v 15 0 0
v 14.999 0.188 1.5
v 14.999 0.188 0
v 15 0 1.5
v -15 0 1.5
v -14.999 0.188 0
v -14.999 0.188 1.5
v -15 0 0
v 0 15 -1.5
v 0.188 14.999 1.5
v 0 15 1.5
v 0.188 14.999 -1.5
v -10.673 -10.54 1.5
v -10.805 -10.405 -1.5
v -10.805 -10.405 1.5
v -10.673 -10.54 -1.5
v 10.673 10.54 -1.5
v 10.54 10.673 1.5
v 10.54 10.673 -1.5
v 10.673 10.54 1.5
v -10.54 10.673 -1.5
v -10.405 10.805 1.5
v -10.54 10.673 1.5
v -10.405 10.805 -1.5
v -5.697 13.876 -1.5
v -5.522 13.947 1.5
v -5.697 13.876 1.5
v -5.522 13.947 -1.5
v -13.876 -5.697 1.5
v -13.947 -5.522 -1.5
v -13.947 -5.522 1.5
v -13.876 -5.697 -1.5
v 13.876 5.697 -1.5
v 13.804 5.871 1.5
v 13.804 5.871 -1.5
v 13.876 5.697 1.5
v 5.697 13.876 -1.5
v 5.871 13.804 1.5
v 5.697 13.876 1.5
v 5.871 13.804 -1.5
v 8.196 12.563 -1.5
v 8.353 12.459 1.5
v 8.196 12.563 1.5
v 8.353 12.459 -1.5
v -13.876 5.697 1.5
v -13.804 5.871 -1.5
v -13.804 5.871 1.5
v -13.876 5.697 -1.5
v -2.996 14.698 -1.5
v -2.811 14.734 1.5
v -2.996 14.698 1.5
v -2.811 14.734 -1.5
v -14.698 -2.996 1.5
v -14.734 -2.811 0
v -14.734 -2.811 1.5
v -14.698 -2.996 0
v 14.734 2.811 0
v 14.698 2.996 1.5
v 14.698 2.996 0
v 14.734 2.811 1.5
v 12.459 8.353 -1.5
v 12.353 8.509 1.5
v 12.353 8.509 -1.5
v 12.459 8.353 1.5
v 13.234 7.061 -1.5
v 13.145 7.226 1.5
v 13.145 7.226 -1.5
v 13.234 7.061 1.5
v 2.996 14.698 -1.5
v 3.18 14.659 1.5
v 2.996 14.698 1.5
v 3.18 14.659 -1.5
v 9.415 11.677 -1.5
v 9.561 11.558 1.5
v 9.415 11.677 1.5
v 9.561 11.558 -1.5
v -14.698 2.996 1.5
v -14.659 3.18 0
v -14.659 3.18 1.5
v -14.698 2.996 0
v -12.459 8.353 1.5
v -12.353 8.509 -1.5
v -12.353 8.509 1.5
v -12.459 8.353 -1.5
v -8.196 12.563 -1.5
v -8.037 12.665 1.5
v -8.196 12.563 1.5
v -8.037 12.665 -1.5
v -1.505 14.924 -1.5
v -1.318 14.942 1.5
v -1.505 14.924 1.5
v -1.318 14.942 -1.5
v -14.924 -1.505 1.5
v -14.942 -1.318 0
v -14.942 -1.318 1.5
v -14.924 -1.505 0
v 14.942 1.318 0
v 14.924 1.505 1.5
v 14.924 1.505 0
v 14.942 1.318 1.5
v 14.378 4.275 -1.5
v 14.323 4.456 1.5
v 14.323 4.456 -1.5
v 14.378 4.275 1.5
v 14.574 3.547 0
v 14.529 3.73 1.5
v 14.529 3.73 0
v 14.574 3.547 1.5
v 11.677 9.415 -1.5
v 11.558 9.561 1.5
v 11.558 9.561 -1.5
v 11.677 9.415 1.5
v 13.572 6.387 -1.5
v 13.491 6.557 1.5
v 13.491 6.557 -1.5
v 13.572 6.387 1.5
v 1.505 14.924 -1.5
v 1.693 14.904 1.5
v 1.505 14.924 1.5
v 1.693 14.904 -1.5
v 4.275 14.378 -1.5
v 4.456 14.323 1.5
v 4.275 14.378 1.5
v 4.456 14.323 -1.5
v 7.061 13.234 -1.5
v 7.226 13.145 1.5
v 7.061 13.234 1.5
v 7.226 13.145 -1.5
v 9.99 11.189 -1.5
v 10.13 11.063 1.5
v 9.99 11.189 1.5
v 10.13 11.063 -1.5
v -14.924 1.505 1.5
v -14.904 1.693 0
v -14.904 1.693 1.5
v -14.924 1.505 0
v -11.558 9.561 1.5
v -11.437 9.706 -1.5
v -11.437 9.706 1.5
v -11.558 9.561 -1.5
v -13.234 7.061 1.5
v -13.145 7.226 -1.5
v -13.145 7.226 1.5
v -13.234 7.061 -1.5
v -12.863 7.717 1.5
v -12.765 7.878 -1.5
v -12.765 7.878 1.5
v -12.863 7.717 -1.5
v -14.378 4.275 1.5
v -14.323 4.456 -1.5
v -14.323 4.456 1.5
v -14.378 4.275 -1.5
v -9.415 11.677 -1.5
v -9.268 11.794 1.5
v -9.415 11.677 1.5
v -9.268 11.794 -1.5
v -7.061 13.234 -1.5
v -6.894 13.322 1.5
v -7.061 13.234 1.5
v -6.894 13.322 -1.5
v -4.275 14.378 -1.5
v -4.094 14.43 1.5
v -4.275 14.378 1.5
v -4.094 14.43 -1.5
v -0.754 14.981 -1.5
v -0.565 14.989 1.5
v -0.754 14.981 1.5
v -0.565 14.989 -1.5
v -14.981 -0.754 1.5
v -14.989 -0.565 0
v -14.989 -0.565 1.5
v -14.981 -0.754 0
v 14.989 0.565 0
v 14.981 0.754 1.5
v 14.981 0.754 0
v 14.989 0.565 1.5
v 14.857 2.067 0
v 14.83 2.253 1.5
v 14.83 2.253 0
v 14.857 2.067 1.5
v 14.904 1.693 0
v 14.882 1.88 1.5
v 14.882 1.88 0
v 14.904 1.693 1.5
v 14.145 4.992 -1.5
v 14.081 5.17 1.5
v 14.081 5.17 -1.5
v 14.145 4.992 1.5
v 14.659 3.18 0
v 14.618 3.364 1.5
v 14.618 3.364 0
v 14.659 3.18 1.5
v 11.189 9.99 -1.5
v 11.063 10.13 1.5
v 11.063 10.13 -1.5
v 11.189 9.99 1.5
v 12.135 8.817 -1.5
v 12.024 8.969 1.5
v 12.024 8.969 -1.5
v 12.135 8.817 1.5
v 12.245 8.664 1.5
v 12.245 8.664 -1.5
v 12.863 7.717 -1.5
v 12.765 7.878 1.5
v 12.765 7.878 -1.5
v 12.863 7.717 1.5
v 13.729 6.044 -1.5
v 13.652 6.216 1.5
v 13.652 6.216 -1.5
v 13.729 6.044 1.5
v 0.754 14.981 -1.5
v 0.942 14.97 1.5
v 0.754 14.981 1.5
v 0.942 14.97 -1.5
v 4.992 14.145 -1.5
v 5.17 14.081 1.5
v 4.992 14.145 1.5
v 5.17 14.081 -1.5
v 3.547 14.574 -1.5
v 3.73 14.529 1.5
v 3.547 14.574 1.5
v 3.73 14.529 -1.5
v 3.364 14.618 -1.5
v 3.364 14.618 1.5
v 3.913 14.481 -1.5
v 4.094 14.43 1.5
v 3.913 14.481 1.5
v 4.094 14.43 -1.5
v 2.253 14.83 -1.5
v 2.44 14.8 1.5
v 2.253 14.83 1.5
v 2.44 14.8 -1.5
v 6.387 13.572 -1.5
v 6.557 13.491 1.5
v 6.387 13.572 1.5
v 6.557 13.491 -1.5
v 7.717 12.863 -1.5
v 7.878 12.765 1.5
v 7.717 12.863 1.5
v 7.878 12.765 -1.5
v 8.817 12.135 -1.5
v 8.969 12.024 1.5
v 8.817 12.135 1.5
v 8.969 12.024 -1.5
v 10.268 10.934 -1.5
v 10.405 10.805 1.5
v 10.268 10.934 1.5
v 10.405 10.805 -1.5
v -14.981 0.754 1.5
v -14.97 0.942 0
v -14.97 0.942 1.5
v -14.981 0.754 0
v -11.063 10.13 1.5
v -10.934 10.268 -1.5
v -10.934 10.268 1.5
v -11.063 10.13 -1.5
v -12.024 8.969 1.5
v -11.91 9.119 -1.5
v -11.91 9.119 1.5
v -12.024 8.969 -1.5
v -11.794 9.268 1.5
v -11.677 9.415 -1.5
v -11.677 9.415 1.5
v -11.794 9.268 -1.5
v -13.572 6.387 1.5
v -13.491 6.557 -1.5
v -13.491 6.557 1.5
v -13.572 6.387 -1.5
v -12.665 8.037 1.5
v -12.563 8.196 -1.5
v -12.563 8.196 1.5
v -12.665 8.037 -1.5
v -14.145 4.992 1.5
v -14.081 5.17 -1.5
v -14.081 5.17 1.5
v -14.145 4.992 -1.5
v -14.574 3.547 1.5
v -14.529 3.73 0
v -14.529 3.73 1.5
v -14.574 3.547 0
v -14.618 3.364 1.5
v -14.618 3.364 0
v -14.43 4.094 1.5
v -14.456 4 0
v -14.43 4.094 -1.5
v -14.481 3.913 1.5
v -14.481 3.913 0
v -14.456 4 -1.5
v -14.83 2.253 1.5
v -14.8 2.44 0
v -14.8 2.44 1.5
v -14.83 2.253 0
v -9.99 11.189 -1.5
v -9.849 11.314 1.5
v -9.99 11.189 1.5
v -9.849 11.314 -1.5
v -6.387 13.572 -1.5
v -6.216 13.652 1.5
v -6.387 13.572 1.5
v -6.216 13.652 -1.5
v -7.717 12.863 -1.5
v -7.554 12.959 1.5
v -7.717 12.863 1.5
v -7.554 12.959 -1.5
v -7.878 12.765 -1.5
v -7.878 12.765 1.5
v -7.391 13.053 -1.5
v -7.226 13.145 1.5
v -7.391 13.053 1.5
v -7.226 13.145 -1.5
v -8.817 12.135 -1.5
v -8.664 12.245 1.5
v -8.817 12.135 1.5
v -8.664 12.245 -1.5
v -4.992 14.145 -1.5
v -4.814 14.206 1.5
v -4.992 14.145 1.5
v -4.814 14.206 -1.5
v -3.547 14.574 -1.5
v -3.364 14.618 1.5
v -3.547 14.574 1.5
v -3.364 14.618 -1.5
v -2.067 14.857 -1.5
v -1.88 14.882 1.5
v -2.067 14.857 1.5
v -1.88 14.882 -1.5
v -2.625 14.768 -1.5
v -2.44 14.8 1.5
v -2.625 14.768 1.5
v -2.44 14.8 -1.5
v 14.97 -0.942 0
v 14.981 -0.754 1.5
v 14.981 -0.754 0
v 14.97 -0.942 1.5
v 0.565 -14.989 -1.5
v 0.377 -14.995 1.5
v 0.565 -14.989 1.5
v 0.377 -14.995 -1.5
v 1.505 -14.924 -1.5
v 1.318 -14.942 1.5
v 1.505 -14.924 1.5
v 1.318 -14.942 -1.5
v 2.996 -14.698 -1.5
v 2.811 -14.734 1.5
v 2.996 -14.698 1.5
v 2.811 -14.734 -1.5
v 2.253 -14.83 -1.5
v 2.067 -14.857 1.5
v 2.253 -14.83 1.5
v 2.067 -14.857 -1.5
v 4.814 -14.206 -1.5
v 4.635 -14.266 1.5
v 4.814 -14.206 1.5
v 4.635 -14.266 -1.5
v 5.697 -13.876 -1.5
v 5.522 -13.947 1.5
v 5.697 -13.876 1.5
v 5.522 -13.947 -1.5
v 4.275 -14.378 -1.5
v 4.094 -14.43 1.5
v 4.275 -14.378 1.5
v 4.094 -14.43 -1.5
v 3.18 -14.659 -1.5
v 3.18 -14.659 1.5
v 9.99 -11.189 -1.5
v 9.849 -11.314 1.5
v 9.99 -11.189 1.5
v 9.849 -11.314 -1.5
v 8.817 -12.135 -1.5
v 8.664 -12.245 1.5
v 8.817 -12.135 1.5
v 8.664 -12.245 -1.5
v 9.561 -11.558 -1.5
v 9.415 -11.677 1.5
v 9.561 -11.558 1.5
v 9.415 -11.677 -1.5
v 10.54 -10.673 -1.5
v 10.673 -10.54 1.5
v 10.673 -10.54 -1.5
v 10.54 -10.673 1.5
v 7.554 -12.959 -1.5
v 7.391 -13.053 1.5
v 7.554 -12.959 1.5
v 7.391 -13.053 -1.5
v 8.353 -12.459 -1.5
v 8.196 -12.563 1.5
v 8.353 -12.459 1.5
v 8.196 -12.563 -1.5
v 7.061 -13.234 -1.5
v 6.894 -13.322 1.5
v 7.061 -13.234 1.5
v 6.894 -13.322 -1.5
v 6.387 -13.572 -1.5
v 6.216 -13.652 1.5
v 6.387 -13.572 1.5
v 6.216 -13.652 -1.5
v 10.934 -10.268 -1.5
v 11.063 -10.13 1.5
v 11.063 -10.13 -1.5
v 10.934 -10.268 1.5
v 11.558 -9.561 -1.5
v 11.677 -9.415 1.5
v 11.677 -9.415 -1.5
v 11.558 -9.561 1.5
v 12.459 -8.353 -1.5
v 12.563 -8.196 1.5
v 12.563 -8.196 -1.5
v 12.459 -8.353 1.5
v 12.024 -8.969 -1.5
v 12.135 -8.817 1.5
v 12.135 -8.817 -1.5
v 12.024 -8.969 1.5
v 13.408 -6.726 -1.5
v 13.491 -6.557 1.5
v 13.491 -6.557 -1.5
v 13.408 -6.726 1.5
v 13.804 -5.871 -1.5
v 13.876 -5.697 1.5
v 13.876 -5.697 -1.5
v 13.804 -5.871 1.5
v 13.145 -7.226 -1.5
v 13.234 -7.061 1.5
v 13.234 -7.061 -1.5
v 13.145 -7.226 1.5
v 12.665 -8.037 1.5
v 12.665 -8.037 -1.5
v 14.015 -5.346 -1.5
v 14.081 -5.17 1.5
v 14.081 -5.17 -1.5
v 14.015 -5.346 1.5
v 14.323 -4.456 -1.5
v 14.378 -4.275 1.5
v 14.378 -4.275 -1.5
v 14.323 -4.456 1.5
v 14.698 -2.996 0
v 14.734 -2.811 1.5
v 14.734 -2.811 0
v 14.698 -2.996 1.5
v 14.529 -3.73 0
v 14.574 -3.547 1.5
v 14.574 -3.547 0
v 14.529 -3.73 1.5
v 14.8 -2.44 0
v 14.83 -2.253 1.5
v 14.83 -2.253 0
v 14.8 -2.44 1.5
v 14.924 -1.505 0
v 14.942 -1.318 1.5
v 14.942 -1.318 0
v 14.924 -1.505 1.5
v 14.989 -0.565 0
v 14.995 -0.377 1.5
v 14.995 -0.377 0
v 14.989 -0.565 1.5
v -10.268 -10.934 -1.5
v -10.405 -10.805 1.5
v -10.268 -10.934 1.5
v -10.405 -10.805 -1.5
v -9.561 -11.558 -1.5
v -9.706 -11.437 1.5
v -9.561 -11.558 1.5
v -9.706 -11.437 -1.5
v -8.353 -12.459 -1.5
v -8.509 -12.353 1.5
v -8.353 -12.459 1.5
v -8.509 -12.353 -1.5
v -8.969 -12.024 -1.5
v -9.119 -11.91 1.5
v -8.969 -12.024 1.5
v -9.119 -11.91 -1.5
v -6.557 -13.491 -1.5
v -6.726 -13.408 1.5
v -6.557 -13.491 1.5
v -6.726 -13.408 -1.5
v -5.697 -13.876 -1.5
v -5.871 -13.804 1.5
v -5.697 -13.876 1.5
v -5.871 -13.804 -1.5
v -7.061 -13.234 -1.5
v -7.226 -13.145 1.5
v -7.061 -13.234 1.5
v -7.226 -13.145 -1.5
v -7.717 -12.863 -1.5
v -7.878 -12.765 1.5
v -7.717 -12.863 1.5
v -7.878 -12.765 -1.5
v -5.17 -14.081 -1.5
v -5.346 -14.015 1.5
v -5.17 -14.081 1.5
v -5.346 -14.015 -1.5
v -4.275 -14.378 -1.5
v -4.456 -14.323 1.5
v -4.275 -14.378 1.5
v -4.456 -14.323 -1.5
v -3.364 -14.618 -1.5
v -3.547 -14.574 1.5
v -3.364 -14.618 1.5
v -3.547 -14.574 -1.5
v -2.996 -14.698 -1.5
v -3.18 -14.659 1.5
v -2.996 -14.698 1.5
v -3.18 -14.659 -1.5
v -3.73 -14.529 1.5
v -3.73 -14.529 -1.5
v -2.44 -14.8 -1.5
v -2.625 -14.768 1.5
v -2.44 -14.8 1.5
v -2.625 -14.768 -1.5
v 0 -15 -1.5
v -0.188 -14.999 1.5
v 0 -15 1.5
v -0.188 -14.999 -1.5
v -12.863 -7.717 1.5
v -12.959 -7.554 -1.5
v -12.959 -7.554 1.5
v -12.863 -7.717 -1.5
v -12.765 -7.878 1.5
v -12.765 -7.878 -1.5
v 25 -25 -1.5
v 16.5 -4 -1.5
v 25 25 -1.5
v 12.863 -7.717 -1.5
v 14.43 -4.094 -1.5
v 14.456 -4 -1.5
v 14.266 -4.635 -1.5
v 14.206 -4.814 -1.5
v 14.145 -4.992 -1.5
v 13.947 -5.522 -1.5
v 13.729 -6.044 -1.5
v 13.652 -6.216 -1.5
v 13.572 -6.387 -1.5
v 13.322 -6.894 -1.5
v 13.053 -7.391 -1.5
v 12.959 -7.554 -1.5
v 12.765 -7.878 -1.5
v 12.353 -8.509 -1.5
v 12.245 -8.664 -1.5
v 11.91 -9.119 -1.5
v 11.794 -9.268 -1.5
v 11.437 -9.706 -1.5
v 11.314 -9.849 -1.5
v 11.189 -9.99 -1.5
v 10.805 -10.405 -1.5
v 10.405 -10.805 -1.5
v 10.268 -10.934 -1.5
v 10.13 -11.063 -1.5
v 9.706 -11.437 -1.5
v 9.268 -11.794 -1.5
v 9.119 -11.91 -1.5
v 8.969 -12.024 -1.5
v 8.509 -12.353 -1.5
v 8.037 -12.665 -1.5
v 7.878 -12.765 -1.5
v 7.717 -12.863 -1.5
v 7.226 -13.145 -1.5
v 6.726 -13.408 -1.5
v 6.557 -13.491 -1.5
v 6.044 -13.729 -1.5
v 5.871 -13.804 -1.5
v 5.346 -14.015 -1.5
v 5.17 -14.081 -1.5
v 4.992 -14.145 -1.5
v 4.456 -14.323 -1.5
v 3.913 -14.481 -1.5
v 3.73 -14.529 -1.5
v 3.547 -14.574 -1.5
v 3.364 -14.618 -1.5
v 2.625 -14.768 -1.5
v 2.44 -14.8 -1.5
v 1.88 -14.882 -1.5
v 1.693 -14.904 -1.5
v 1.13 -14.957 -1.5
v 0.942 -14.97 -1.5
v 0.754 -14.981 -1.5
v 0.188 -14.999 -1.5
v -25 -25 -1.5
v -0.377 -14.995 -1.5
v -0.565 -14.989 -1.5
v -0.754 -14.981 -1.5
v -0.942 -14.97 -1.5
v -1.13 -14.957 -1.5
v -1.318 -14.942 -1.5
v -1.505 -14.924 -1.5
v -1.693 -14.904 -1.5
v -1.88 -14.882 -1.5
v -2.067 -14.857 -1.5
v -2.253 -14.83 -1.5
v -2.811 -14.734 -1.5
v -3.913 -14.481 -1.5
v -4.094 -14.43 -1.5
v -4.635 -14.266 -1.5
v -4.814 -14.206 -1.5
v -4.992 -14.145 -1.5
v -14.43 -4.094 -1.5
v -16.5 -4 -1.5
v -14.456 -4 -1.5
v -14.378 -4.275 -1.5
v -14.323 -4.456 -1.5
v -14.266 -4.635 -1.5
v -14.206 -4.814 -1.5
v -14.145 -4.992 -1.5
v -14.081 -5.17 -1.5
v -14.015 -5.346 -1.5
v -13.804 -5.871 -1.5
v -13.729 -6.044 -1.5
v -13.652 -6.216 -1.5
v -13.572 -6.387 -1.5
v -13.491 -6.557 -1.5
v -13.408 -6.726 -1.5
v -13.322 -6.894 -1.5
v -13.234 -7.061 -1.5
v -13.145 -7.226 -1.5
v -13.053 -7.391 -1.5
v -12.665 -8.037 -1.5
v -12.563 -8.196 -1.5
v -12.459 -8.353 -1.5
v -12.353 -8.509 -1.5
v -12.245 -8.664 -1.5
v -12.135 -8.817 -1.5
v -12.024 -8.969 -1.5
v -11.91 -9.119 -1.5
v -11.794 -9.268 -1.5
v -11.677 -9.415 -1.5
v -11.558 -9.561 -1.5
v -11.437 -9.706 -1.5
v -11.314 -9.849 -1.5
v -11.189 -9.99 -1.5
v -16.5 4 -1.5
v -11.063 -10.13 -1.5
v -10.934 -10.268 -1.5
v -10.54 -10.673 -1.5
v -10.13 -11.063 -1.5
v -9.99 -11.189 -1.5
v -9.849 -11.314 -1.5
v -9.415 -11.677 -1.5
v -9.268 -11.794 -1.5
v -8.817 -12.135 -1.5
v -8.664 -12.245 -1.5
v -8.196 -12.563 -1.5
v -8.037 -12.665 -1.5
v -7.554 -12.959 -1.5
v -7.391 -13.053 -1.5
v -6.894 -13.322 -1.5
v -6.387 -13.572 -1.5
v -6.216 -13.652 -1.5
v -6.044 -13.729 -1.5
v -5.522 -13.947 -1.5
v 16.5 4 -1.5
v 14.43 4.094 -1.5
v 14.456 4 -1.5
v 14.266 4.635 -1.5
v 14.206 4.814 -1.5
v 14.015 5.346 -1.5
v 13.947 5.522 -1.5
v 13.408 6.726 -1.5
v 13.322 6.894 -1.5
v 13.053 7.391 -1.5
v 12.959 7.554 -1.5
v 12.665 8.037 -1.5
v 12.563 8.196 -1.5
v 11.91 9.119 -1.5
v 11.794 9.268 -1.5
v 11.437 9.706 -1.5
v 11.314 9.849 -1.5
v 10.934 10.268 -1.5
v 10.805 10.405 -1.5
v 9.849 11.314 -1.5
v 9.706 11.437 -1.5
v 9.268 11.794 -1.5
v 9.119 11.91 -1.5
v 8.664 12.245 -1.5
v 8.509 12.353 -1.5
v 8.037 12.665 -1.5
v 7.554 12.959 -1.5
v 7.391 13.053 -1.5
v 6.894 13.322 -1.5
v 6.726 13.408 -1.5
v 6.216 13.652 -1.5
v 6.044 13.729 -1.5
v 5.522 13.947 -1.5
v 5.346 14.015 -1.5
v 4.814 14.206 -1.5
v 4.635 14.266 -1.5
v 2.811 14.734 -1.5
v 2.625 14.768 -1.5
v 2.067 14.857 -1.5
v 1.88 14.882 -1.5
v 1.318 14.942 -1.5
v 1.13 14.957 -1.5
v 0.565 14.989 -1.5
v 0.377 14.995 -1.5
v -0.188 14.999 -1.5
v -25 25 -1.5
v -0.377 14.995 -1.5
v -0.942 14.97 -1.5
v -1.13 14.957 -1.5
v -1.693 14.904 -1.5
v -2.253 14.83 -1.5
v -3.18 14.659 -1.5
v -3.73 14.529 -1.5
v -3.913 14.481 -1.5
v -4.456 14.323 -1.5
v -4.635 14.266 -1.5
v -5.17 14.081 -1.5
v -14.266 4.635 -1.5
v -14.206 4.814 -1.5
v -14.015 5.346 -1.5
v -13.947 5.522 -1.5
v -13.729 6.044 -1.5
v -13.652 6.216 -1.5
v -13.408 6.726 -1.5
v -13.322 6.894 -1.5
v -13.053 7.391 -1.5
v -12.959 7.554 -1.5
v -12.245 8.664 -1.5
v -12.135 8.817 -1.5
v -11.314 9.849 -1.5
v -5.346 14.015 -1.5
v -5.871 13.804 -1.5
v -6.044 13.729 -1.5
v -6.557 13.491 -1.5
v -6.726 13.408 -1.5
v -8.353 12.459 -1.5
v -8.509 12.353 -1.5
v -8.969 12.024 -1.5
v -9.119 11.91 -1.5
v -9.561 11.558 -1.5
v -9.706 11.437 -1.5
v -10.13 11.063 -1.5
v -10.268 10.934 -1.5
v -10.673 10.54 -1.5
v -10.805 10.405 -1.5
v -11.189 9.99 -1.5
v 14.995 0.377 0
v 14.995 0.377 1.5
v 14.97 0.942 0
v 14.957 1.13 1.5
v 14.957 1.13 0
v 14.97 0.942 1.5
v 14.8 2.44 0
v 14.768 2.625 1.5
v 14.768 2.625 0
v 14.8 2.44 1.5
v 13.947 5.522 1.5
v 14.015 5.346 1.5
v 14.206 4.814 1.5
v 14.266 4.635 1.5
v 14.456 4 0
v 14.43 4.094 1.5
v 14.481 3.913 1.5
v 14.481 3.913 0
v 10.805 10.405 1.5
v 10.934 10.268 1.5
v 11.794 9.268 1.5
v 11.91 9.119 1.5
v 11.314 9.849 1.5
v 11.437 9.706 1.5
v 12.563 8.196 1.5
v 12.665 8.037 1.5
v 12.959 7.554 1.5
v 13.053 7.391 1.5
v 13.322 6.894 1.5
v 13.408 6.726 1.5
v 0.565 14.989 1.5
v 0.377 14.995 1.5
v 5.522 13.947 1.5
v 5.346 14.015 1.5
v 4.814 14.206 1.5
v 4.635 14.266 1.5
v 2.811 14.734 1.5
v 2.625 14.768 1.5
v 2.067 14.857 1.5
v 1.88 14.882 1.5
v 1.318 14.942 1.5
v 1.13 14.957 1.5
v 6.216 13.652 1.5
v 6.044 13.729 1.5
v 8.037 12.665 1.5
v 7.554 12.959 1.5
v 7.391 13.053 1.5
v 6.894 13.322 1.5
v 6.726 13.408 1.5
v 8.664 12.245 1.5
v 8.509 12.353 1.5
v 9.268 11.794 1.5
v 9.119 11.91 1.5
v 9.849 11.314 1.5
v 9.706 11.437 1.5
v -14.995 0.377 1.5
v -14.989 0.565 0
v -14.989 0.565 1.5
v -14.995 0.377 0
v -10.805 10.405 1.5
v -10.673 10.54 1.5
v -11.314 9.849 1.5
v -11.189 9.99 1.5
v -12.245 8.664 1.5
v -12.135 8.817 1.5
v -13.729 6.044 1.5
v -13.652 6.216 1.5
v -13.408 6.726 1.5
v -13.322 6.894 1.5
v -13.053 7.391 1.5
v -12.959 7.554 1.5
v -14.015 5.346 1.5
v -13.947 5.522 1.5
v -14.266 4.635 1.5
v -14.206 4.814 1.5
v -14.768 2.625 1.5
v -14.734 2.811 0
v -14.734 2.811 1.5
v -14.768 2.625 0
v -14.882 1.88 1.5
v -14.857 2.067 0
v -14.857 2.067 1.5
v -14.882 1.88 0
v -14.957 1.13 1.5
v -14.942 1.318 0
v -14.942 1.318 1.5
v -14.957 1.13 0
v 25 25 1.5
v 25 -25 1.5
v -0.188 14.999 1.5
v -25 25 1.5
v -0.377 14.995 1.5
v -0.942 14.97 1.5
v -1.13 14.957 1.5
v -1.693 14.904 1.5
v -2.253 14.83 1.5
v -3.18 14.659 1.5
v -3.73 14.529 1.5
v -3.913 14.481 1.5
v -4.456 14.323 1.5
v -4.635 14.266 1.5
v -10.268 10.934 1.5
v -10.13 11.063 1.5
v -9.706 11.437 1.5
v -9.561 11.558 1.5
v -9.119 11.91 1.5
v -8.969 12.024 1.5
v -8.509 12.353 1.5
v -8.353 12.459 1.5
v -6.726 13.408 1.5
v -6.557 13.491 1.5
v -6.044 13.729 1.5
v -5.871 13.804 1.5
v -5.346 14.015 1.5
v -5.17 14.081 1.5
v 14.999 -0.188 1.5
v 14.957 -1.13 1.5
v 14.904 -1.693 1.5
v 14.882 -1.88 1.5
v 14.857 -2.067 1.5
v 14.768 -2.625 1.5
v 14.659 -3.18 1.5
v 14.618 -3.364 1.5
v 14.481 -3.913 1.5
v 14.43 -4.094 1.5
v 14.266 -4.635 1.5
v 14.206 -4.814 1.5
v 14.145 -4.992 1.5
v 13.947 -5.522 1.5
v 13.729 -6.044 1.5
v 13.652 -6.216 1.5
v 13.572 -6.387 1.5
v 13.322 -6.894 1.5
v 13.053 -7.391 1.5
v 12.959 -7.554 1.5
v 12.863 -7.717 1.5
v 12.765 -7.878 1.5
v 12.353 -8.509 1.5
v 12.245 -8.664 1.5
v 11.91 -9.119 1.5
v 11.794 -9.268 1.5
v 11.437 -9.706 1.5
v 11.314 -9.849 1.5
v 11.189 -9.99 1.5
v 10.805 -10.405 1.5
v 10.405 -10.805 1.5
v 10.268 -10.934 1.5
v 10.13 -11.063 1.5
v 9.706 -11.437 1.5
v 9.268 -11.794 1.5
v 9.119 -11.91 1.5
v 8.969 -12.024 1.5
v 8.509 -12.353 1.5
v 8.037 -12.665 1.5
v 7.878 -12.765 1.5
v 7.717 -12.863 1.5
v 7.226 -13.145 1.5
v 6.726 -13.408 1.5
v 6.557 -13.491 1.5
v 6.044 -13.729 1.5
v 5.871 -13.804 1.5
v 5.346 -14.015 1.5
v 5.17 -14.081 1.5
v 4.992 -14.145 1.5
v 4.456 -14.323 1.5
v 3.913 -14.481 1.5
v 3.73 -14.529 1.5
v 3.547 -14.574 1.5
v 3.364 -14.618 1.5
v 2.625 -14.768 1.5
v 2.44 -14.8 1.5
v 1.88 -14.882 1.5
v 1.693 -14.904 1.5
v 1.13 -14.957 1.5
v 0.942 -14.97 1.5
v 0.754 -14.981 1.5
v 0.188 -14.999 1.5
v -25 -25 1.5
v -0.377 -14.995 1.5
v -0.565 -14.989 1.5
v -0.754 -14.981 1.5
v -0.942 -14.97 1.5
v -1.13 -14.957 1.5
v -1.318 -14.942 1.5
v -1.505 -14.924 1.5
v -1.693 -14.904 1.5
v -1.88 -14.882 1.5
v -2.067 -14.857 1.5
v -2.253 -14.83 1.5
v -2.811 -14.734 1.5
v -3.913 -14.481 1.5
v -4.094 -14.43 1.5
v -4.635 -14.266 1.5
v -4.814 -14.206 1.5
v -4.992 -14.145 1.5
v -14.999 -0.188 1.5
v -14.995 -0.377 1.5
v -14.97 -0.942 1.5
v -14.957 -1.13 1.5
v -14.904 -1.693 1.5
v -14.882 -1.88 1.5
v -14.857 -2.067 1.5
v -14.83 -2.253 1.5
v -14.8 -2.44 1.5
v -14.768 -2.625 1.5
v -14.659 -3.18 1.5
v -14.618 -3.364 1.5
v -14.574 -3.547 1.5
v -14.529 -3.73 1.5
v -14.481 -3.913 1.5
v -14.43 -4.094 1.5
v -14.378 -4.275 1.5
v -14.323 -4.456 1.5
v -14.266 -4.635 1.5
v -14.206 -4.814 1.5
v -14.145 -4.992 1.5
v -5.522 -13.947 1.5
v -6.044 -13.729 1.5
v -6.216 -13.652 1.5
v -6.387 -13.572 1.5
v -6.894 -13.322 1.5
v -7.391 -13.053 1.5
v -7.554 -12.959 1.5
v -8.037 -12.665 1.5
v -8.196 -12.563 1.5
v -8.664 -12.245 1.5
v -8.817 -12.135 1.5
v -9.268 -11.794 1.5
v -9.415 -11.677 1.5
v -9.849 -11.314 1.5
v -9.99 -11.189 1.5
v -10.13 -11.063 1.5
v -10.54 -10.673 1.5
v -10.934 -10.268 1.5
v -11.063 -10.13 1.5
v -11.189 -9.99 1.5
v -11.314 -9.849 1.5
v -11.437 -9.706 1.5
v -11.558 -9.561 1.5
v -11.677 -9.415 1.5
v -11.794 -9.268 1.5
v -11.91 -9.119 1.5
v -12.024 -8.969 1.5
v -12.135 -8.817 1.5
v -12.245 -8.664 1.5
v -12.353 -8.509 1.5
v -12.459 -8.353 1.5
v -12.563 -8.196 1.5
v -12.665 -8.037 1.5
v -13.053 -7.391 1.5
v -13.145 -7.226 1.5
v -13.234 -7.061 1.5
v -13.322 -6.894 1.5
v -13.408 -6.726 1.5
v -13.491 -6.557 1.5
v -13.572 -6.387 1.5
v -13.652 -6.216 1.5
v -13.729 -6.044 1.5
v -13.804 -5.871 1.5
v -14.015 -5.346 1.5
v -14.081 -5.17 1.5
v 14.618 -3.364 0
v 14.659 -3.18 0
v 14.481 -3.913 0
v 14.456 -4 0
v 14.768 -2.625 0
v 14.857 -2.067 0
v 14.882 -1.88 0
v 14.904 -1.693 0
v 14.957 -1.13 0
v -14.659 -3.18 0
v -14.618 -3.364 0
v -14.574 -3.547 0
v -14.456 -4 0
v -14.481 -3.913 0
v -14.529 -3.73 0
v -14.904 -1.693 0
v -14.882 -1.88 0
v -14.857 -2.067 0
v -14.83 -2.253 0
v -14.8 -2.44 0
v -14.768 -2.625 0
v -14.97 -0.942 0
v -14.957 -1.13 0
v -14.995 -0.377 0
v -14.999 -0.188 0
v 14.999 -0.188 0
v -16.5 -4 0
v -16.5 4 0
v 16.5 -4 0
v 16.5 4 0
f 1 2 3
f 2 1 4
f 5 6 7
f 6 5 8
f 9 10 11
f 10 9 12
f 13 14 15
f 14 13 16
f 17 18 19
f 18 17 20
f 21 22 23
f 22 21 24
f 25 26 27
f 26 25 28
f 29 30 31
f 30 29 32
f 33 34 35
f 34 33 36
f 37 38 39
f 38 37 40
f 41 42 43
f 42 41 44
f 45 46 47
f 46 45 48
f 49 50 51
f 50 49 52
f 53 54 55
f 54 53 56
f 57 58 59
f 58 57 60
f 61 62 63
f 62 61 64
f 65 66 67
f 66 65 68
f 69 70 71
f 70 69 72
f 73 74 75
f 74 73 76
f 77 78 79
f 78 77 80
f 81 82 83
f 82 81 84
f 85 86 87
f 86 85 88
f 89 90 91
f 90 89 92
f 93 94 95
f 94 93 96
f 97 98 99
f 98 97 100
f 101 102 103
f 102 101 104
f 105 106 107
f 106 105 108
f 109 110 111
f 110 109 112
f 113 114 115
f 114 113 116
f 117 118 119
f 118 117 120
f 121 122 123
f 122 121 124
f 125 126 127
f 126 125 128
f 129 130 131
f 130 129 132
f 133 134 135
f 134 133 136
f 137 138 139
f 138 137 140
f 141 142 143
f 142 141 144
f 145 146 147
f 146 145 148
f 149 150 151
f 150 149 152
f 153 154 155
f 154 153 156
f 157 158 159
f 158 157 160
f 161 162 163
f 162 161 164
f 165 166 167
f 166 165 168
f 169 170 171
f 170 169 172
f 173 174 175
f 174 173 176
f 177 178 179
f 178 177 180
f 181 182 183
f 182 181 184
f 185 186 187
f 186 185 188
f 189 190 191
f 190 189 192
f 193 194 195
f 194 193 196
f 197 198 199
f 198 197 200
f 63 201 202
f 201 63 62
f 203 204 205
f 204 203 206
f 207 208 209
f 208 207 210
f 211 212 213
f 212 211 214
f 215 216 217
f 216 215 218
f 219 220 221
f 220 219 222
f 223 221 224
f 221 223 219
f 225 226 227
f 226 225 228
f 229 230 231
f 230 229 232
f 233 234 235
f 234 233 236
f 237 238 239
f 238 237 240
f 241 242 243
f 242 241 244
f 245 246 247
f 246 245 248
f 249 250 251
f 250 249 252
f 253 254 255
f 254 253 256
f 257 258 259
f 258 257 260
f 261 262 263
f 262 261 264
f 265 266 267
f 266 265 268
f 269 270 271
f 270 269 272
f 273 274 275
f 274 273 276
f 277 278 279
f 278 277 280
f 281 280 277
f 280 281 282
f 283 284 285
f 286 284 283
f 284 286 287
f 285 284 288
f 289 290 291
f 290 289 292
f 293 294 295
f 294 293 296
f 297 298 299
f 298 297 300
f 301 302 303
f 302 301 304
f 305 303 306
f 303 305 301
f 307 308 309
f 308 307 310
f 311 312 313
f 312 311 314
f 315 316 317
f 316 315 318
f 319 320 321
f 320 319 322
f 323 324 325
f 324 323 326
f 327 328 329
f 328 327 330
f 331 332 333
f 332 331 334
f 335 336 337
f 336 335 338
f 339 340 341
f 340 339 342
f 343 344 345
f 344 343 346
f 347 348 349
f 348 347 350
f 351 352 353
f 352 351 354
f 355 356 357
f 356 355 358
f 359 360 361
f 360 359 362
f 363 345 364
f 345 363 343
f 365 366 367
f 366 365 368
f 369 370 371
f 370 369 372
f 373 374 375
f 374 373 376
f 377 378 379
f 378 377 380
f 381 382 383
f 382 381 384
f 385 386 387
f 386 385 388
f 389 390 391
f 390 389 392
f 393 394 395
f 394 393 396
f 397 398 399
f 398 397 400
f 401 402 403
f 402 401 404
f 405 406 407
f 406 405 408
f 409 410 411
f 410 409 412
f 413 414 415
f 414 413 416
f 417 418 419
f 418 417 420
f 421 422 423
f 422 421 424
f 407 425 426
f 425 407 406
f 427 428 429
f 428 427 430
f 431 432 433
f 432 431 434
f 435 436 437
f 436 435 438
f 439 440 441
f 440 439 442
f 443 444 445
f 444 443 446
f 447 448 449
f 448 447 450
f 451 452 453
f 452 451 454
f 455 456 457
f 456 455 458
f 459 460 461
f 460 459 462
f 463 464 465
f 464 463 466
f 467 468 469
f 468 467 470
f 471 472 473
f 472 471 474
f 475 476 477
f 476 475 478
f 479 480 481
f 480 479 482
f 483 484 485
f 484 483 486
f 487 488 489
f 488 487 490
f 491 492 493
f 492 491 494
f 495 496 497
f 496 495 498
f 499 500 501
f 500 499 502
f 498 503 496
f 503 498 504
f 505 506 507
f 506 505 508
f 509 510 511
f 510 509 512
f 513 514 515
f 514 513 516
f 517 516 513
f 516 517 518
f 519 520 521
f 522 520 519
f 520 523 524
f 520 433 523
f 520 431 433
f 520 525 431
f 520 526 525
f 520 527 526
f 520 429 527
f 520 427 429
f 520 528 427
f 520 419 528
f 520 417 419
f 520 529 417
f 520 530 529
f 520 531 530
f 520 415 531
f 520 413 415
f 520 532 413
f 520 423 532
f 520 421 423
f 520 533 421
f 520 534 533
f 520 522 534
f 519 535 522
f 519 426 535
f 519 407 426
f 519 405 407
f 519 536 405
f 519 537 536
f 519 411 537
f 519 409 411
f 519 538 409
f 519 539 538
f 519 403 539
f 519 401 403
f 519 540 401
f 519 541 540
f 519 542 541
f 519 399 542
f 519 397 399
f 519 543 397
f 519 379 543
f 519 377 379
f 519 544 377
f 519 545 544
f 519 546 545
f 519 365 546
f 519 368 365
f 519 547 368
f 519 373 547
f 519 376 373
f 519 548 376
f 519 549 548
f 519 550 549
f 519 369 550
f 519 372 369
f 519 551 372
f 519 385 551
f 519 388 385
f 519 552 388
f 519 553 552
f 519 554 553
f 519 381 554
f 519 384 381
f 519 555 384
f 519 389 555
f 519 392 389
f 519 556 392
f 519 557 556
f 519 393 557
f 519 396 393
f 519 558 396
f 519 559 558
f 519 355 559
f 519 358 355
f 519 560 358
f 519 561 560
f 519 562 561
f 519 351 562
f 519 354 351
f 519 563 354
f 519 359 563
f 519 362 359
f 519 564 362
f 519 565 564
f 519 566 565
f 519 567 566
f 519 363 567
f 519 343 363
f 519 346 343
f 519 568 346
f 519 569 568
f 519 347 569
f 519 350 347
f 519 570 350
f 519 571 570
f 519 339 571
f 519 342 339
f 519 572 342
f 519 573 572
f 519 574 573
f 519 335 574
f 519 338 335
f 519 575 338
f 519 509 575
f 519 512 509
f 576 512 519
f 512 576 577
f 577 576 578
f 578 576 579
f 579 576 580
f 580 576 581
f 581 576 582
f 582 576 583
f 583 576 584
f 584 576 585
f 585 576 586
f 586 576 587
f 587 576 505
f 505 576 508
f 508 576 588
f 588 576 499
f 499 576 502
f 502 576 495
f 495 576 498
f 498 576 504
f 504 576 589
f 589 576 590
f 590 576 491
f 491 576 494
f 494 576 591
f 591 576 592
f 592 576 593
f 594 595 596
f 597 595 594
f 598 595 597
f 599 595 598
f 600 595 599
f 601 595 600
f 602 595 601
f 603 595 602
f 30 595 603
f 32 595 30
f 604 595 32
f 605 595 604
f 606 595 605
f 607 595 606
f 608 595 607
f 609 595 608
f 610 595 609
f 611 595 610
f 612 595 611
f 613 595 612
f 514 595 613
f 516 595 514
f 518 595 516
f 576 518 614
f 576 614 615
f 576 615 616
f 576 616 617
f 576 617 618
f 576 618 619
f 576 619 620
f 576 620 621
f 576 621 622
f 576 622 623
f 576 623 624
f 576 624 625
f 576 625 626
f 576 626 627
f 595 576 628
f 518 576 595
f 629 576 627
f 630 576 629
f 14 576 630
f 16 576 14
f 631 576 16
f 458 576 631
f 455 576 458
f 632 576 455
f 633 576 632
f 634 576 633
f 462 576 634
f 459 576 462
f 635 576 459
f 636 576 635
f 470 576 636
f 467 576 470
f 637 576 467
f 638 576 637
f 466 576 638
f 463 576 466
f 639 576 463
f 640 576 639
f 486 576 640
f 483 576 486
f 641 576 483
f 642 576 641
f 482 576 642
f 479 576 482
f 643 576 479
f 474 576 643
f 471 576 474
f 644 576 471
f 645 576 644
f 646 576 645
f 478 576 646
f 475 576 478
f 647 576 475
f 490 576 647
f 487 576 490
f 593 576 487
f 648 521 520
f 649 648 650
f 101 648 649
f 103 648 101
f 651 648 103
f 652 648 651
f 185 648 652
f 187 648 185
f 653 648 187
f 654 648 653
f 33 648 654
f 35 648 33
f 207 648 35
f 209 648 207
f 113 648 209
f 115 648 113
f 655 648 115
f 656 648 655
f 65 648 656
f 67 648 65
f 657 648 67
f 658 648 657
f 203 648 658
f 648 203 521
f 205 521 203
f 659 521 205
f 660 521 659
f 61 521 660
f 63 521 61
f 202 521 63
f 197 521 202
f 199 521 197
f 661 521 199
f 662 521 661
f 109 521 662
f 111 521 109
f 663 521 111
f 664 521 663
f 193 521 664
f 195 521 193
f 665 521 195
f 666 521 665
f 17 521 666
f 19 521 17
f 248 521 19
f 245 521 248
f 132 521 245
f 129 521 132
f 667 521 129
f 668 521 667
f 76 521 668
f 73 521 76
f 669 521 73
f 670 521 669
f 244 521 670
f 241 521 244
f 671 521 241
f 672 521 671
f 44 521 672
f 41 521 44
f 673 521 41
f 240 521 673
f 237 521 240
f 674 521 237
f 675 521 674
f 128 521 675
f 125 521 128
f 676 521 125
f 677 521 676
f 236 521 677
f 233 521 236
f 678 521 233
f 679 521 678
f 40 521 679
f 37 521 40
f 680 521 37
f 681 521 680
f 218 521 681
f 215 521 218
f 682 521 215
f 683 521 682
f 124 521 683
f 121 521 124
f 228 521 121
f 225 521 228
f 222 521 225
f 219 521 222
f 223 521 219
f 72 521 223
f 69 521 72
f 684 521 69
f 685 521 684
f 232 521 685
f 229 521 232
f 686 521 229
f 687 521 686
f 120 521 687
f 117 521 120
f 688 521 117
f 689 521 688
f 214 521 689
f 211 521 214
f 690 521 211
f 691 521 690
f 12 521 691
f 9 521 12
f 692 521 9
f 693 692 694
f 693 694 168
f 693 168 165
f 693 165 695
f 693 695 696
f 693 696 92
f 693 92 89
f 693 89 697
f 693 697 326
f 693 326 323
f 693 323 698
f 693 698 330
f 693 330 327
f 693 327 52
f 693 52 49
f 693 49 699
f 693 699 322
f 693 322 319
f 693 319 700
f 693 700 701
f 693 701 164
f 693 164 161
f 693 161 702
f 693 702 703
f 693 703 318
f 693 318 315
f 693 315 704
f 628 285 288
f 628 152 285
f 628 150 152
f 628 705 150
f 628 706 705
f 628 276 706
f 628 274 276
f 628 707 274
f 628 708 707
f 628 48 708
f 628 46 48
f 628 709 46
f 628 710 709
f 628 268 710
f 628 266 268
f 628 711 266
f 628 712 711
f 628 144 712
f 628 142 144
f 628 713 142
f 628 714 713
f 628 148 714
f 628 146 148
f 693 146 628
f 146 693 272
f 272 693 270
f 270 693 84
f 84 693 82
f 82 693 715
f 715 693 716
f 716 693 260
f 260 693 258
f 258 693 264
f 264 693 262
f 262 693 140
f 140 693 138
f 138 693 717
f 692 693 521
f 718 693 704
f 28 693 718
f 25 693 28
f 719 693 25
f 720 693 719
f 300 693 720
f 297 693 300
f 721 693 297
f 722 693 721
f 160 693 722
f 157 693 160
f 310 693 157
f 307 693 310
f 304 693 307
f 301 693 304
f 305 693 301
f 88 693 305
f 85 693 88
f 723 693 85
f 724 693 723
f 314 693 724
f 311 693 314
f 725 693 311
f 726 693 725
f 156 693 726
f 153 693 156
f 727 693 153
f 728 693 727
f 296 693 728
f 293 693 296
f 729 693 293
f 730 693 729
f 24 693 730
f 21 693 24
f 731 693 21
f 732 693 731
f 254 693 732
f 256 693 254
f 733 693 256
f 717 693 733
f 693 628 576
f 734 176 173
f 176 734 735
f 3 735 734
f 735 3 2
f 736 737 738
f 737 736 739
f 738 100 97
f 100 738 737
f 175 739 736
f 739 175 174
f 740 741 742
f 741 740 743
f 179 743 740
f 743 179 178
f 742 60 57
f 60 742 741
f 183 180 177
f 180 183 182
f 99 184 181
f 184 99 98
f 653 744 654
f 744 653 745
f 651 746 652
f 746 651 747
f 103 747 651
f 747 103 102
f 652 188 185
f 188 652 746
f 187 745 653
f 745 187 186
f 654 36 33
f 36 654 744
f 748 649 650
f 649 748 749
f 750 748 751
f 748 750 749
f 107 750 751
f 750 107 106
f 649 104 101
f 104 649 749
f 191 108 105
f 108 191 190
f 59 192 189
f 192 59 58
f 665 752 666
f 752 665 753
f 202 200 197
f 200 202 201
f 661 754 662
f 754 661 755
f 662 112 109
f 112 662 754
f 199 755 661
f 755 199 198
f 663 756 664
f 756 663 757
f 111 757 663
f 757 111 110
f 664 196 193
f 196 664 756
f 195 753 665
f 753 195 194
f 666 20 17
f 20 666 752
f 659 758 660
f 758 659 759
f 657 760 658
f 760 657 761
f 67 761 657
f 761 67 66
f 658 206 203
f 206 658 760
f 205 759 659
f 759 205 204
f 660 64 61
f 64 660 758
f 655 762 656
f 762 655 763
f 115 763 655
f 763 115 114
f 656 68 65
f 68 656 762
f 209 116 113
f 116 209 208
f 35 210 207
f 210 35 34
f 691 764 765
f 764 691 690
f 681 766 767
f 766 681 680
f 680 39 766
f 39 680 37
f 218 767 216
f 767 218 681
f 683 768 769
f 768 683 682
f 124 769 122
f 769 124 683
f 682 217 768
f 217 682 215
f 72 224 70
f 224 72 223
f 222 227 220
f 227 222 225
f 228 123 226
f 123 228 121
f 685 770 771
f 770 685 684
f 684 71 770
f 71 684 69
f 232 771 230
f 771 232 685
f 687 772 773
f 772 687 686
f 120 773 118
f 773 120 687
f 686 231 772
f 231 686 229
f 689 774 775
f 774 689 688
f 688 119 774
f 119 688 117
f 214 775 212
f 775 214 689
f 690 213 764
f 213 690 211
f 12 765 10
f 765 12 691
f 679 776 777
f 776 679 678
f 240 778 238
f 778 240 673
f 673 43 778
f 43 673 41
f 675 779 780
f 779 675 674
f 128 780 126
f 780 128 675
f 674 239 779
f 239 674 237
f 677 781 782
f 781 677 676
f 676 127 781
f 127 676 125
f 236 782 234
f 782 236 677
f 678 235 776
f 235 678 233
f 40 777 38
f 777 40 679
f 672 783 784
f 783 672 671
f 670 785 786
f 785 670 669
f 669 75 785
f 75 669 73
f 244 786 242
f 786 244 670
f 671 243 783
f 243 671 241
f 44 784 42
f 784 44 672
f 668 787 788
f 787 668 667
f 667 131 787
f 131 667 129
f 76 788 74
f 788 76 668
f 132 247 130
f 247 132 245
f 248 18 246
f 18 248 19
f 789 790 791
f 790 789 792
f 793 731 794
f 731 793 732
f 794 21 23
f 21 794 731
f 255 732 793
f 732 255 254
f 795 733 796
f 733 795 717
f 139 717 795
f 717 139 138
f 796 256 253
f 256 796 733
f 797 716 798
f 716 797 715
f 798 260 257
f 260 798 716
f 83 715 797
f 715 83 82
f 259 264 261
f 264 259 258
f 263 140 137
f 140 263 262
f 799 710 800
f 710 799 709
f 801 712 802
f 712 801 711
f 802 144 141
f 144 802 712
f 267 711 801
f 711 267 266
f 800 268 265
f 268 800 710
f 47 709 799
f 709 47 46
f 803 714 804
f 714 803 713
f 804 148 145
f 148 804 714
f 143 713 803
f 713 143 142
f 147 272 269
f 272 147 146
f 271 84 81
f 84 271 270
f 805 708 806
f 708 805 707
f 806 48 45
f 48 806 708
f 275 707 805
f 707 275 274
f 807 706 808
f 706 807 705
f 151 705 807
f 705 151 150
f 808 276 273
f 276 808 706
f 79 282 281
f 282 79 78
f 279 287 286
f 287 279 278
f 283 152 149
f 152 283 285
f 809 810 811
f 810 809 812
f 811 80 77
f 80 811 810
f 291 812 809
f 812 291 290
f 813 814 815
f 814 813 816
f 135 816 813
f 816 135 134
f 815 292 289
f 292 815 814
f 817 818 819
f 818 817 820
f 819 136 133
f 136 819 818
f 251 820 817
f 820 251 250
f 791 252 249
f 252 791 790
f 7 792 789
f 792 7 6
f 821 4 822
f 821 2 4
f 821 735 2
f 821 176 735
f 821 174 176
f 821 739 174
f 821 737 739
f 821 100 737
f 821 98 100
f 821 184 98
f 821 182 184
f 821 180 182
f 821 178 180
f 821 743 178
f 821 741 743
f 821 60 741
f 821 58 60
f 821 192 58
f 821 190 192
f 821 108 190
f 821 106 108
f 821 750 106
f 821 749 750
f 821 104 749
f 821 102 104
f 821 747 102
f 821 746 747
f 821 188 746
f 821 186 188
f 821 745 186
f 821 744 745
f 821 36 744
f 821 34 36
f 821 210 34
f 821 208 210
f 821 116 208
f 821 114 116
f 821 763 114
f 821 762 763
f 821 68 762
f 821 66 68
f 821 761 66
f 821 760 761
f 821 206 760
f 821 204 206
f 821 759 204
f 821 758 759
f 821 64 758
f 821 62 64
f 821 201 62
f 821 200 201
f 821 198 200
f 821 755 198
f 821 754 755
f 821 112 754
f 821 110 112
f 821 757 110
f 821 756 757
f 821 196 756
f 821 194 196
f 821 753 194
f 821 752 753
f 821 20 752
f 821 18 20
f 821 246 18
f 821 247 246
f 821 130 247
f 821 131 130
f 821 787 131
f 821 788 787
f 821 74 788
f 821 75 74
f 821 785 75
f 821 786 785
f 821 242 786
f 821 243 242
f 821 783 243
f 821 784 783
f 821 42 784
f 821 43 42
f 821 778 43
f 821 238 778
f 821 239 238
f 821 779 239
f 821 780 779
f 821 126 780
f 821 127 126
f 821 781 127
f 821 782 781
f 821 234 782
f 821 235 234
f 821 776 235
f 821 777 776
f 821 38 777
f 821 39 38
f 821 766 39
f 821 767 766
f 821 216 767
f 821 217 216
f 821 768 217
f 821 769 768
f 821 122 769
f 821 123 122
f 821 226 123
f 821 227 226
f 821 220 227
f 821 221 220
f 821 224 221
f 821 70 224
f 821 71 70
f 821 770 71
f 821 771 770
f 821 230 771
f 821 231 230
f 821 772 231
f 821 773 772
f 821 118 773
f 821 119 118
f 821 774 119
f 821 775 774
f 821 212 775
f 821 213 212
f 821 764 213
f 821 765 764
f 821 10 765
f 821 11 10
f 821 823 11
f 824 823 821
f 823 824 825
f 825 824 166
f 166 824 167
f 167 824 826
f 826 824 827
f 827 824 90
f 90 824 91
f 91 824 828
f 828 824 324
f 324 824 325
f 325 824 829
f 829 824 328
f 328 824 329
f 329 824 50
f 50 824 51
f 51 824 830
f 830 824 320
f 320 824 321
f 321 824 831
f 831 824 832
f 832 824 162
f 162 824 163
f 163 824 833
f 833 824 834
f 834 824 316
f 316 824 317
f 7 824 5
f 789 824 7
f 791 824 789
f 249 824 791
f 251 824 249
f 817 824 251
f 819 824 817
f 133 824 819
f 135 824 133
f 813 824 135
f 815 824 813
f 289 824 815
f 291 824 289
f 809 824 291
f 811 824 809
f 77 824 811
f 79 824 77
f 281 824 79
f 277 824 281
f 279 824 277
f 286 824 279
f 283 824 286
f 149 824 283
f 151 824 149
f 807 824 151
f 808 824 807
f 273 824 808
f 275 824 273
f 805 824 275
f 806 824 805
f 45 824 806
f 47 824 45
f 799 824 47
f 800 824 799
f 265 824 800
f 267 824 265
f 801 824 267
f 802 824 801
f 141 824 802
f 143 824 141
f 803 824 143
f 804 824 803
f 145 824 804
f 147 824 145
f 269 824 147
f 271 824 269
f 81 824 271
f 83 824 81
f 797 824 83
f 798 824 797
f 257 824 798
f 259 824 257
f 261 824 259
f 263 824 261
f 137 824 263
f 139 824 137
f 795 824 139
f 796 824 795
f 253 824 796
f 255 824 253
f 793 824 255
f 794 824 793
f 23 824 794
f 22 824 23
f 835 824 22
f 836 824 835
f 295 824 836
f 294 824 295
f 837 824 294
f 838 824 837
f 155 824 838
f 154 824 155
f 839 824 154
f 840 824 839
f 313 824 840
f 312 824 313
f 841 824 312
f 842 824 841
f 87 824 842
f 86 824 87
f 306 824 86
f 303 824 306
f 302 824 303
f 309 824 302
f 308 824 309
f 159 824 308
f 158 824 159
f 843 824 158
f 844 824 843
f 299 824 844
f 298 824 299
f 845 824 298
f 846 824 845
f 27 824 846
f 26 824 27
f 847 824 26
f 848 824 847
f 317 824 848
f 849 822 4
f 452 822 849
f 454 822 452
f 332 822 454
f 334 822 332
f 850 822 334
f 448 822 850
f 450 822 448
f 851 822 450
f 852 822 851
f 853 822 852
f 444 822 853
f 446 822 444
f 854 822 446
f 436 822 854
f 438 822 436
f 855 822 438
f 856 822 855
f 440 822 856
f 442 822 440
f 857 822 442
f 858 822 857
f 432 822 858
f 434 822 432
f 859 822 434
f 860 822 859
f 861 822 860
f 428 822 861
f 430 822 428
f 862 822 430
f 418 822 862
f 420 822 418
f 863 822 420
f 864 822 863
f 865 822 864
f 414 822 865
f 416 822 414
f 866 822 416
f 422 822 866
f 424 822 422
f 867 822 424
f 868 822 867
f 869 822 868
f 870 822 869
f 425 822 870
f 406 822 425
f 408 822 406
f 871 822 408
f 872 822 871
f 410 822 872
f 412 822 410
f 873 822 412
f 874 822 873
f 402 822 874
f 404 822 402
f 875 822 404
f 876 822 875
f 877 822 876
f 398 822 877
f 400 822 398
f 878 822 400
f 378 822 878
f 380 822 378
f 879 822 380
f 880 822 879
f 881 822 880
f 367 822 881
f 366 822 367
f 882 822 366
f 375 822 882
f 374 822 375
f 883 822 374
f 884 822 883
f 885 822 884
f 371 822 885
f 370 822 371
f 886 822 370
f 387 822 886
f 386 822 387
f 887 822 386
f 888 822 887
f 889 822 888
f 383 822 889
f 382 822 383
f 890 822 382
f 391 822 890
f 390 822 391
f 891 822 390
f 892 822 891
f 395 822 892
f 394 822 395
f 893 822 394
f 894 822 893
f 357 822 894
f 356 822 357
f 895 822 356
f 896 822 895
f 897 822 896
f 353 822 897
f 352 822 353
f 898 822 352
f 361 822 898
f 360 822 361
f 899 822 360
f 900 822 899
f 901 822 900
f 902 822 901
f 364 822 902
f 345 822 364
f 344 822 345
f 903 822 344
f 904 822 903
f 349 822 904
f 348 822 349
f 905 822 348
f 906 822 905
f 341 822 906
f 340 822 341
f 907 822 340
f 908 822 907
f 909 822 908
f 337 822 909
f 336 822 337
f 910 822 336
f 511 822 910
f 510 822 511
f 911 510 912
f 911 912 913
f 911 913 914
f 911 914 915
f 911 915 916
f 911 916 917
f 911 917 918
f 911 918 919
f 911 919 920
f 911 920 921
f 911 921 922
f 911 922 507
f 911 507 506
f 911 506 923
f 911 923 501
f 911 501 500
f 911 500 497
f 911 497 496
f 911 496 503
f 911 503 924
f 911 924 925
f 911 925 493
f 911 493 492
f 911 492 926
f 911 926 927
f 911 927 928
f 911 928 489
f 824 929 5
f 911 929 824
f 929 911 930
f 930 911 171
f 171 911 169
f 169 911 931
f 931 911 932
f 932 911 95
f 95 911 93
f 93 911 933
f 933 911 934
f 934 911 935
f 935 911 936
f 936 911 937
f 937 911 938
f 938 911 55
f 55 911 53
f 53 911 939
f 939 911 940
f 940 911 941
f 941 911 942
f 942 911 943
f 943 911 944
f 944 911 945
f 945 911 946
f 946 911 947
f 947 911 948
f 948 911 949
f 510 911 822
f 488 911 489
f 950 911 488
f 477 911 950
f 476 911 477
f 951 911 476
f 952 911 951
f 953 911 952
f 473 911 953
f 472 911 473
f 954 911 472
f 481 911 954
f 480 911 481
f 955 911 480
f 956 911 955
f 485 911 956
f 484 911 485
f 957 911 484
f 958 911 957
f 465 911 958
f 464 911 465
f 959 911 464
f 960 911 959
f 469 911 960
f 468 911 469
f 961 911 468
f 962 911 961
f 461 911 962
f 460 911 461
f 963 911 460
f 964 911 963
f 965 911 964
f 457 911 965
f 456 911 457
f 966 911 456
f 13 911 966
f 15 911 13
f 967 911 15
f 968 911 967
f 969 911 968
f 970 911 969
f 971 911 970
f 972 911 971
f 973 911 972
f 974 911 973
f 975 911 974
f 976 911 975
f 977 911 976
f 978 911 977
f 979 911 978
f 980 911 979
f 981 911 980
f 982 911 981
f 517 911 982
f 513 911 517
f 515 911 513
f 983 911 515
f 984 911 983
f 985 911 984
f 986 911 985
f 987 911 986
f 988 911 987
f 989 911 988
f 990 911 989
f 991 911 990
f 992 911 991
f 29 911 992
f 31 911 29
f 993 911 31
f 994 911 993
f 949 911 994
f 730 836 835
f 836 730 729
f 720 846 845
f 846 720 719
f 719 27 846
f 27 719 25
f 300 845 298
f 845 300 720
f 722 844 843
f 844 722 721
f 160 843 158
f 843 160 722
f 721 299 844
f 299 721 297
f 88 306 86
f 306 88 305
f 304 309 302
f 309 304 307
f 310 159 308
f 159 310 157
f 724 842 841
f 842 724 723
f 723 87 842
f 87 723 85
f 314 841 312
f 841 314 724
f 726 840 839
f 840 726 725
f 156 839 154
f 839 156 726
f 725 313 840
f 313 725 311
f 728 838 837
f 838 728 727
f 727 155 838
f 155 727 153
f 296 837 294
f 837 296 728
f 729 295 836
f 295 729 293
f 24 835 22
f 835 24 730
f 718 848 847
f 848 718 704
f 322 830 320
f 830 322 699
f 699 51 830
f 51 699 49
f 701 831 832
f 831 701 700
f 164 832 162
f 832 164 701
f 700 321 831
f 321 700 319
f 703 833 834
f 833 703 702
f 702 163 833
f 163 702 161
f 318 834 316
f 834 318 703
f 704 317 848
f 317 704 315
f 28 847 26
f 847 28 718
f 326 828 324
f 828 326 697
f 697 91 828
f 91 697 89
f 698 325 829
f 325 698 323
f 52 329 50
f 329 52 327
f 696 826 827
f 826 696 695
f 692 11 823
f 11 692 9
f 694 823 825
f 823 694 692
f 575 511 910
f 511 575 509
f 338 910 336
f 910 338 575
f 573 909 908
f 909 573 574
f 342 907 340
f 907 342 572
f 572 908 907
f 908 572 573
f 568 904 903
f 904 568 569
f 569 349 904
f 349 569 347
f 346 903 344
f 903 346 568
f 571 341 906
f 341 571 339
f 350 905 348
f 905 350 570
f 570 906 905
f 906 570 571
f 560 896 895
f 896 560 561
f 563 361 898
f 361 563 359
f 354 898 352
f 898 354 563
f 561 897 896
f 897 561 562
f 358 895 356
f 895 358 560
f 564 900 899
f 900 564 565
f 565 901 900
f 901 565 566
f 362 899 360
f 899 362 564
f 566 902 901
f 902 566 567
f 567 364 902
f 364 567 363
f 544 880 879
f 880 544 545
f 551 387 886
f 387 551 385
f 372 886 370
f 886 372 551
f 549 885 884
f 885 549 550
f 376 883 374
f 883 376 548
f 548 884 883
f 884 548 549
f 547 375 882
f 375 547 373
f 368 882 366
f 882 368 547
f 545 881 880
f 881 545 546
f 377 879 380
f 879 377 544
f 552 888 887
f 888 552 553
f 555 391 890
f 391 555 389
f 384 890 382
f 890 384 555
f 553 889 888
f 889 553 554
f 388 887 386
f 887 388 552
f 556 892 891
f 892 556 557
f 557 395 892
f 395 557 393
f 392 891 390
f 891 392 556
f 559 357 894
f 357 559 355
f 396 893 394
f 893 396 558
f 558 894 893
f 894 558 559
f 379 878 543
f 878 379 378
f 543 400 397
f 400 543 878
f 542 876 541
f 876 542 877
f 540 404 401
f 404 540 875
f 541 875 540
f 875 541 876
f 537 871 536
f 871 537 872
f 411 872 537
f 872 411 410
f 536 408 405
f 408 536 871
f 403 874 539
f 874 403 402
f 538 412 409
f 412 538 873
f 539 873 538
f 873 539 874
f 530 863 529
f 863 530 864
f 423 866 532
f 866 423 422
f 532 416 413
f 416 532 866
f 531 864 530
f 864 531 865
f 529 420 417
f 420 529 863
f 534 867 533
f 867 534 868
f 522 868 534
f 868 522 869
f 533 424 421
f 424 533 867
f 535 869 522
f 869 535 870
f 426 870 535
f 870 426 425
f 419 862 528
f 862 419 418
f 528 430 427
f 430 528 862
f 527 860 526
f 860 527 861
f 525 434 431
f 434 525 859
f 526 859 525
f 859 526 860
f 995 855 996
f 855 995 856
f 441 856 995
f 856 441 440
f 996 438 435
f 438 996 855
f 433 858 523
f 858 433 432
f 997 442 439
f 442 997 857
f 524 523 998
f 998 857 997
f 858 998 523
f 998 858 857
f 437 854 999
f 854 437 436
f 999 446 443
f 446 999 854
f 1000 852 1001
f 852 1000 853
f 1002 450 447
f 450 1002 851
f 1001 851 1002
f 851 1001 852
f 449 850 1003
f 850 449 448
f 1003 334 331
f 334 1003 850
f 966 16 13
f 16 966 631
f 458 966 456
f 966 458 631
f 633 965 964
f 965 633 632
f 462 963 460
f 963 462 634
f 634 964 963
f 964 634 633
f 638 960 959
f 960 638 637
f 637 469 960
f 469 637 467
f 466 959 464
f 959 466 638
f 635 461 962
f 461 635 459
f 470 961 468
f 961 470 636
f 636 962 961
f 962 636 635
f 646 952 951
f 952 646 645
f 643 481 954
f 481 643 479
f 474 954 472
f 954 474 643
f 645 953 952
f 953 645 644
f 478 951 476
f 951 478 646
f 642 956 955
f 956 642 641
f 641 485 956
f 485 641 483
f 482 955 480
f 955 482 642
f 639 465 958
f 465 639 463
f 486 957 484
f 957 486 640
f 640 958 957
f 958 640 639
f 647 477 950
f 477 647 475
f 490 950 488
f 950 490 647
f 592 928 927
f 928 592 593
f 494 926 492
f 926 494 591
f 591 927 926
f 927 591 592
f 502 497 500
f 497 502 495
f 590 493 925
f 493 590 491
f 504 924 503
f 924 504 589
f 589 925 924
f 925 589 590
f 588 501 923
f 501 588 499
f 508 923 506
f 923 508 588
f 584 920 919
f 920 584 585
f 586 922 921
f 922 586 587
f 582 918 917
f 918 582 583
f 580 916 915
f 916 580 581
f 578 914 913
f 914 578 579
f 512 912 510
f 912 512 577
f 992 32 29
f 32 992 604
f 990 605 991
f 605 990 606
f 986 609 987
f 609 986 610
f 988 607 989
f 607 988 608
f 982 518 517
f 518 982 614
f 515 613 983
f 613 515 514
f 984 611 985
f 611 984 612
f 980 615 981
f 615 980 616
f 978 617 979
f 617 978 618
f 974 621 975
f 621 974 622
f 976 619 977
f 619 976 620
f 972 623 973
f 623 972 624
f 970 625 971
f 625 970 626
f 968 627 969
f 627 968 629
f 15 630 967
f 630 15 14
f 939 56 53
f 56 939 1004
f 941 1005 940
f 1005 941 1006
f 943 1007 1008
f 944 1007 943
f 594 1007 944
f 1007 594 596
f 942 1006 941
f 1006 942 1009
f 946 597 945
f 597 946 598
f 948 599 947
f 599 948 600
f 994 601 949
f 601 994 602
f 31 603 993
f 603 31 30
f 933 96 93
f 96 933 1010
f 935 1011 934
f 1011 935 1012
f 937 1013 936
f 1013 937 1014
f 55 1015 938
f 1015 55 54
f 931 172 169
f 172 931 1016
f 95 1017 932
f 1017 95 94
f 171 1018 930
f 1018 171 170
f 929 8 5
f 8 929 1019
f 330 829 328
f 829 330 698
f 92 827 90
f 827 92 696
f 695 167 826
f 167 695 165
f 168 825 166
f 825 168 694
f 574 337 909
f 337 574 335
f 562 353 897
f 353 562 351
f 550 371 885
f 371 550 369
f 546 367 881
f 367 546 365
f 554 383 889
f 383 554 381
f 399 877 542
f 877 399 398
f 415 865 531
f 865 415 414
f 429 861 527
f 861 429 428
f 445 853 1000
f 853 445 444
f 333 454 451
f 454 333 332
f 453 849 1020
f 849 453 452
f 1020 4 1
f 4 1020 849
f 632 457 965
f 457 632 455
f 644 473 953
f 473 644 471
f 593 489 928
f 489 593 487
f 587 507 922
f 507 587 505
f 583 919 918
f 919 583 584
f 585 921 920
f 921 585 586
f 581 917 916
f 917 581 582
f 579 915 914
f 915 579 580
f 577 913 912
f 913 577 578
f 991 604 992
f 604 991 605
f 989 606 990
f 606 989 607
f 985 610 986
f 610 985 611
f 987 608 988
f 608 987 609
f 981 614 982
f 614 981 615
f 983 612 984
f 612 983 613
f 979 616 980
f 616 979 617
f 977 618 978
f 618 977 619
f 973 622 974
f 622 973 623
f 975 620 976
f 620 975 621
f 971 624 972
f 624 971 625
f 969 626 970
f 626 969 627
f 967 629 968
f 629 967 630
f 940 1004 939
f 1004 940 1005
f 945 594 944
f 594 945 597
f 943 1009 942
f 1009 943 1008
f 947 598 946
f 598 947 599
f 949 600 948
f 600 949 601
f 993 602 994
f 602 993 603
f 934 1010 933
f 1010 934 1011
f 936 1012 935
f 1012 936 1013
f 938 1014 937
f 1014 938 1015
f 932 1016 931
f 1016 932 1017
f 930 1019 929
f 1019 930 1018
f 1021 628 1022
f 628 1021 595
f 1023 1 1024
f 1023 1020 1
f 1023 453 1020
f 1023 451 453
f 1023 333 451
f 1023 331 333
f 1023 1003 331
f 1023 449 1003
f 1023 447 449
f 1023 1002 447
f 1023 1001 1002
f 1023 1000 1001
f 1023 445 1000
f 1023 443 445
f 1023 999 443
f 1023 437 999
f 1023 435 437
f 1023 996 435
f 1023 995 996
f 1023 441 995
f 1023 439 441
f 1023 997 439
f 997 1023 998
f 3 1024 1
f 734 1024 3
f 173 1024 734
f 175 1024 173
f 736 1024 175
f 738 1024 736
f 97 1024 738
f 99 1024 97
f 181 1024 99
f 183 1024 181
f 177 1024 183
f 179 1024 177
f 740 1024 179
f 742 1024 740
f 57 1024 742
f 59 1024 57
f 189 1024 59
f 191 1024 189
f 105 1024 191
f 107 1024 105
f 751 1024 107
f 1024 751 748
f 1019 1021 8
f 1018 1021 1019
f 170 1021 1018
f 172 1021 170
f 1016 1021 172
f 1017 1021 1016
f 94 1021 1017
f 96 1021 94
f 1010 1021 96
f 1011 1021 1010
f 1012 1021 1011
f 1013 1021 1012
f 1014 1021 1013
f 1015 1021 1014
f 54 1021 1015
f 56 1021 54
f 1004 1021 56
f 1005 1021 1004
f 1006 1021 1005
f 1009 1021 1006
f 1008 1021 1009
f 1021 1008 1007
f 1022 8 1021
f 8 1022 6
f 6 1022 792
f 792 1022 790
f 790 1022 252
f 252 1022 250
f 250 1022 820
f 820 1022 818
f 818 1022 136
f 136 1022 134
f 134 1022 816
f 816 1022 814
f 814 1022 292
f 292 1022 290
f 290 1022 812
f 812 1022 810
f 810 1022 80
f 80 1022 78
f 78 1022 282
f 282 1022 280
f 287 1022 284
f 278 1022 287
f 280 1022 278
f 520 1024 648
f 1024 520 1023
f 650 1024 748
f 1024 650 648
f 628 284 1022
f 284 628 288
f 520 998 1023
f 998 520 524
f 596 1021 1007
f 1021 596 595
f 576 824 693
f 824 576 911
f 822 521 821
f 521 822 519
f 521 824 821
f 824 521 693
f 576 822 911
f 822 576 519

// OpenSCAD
// file: ../button_holes.scad
button_hole_depth = 3;

module button_hole(diameter, normal=[0,0,1], rotation=0) {
    // Constant
    button_hole_depth = 3;
    // TODO = Orient and rotate the button
    // normal is provided as a normal
    // rotation is in degrees around the normal
    cylinder(d=diameter, h=button_hole_depth, $fn=500, center=true);
    // The lips come out 1.5mm at opposite sides of the button.
    // On the lower part. They are 8mm wide.
    translate([0,0,-button_hole_depth/4]) {
        cube([diameter+3, 8, button_hole_depth/2], center=true);
    }
}

module action_button_hole(normal=[0,0,1]) {
    button_hole(diameter=30, normal=normal);
}

module option_button_hole(normal=[0,0,1]) {
    button_hole(diameter=24, normal=normal);
}
// main file
include <../button_holes.scad>

difference() {
    cube([50,50,button_hole_depth],center=true);
    action_button_hole();
}
